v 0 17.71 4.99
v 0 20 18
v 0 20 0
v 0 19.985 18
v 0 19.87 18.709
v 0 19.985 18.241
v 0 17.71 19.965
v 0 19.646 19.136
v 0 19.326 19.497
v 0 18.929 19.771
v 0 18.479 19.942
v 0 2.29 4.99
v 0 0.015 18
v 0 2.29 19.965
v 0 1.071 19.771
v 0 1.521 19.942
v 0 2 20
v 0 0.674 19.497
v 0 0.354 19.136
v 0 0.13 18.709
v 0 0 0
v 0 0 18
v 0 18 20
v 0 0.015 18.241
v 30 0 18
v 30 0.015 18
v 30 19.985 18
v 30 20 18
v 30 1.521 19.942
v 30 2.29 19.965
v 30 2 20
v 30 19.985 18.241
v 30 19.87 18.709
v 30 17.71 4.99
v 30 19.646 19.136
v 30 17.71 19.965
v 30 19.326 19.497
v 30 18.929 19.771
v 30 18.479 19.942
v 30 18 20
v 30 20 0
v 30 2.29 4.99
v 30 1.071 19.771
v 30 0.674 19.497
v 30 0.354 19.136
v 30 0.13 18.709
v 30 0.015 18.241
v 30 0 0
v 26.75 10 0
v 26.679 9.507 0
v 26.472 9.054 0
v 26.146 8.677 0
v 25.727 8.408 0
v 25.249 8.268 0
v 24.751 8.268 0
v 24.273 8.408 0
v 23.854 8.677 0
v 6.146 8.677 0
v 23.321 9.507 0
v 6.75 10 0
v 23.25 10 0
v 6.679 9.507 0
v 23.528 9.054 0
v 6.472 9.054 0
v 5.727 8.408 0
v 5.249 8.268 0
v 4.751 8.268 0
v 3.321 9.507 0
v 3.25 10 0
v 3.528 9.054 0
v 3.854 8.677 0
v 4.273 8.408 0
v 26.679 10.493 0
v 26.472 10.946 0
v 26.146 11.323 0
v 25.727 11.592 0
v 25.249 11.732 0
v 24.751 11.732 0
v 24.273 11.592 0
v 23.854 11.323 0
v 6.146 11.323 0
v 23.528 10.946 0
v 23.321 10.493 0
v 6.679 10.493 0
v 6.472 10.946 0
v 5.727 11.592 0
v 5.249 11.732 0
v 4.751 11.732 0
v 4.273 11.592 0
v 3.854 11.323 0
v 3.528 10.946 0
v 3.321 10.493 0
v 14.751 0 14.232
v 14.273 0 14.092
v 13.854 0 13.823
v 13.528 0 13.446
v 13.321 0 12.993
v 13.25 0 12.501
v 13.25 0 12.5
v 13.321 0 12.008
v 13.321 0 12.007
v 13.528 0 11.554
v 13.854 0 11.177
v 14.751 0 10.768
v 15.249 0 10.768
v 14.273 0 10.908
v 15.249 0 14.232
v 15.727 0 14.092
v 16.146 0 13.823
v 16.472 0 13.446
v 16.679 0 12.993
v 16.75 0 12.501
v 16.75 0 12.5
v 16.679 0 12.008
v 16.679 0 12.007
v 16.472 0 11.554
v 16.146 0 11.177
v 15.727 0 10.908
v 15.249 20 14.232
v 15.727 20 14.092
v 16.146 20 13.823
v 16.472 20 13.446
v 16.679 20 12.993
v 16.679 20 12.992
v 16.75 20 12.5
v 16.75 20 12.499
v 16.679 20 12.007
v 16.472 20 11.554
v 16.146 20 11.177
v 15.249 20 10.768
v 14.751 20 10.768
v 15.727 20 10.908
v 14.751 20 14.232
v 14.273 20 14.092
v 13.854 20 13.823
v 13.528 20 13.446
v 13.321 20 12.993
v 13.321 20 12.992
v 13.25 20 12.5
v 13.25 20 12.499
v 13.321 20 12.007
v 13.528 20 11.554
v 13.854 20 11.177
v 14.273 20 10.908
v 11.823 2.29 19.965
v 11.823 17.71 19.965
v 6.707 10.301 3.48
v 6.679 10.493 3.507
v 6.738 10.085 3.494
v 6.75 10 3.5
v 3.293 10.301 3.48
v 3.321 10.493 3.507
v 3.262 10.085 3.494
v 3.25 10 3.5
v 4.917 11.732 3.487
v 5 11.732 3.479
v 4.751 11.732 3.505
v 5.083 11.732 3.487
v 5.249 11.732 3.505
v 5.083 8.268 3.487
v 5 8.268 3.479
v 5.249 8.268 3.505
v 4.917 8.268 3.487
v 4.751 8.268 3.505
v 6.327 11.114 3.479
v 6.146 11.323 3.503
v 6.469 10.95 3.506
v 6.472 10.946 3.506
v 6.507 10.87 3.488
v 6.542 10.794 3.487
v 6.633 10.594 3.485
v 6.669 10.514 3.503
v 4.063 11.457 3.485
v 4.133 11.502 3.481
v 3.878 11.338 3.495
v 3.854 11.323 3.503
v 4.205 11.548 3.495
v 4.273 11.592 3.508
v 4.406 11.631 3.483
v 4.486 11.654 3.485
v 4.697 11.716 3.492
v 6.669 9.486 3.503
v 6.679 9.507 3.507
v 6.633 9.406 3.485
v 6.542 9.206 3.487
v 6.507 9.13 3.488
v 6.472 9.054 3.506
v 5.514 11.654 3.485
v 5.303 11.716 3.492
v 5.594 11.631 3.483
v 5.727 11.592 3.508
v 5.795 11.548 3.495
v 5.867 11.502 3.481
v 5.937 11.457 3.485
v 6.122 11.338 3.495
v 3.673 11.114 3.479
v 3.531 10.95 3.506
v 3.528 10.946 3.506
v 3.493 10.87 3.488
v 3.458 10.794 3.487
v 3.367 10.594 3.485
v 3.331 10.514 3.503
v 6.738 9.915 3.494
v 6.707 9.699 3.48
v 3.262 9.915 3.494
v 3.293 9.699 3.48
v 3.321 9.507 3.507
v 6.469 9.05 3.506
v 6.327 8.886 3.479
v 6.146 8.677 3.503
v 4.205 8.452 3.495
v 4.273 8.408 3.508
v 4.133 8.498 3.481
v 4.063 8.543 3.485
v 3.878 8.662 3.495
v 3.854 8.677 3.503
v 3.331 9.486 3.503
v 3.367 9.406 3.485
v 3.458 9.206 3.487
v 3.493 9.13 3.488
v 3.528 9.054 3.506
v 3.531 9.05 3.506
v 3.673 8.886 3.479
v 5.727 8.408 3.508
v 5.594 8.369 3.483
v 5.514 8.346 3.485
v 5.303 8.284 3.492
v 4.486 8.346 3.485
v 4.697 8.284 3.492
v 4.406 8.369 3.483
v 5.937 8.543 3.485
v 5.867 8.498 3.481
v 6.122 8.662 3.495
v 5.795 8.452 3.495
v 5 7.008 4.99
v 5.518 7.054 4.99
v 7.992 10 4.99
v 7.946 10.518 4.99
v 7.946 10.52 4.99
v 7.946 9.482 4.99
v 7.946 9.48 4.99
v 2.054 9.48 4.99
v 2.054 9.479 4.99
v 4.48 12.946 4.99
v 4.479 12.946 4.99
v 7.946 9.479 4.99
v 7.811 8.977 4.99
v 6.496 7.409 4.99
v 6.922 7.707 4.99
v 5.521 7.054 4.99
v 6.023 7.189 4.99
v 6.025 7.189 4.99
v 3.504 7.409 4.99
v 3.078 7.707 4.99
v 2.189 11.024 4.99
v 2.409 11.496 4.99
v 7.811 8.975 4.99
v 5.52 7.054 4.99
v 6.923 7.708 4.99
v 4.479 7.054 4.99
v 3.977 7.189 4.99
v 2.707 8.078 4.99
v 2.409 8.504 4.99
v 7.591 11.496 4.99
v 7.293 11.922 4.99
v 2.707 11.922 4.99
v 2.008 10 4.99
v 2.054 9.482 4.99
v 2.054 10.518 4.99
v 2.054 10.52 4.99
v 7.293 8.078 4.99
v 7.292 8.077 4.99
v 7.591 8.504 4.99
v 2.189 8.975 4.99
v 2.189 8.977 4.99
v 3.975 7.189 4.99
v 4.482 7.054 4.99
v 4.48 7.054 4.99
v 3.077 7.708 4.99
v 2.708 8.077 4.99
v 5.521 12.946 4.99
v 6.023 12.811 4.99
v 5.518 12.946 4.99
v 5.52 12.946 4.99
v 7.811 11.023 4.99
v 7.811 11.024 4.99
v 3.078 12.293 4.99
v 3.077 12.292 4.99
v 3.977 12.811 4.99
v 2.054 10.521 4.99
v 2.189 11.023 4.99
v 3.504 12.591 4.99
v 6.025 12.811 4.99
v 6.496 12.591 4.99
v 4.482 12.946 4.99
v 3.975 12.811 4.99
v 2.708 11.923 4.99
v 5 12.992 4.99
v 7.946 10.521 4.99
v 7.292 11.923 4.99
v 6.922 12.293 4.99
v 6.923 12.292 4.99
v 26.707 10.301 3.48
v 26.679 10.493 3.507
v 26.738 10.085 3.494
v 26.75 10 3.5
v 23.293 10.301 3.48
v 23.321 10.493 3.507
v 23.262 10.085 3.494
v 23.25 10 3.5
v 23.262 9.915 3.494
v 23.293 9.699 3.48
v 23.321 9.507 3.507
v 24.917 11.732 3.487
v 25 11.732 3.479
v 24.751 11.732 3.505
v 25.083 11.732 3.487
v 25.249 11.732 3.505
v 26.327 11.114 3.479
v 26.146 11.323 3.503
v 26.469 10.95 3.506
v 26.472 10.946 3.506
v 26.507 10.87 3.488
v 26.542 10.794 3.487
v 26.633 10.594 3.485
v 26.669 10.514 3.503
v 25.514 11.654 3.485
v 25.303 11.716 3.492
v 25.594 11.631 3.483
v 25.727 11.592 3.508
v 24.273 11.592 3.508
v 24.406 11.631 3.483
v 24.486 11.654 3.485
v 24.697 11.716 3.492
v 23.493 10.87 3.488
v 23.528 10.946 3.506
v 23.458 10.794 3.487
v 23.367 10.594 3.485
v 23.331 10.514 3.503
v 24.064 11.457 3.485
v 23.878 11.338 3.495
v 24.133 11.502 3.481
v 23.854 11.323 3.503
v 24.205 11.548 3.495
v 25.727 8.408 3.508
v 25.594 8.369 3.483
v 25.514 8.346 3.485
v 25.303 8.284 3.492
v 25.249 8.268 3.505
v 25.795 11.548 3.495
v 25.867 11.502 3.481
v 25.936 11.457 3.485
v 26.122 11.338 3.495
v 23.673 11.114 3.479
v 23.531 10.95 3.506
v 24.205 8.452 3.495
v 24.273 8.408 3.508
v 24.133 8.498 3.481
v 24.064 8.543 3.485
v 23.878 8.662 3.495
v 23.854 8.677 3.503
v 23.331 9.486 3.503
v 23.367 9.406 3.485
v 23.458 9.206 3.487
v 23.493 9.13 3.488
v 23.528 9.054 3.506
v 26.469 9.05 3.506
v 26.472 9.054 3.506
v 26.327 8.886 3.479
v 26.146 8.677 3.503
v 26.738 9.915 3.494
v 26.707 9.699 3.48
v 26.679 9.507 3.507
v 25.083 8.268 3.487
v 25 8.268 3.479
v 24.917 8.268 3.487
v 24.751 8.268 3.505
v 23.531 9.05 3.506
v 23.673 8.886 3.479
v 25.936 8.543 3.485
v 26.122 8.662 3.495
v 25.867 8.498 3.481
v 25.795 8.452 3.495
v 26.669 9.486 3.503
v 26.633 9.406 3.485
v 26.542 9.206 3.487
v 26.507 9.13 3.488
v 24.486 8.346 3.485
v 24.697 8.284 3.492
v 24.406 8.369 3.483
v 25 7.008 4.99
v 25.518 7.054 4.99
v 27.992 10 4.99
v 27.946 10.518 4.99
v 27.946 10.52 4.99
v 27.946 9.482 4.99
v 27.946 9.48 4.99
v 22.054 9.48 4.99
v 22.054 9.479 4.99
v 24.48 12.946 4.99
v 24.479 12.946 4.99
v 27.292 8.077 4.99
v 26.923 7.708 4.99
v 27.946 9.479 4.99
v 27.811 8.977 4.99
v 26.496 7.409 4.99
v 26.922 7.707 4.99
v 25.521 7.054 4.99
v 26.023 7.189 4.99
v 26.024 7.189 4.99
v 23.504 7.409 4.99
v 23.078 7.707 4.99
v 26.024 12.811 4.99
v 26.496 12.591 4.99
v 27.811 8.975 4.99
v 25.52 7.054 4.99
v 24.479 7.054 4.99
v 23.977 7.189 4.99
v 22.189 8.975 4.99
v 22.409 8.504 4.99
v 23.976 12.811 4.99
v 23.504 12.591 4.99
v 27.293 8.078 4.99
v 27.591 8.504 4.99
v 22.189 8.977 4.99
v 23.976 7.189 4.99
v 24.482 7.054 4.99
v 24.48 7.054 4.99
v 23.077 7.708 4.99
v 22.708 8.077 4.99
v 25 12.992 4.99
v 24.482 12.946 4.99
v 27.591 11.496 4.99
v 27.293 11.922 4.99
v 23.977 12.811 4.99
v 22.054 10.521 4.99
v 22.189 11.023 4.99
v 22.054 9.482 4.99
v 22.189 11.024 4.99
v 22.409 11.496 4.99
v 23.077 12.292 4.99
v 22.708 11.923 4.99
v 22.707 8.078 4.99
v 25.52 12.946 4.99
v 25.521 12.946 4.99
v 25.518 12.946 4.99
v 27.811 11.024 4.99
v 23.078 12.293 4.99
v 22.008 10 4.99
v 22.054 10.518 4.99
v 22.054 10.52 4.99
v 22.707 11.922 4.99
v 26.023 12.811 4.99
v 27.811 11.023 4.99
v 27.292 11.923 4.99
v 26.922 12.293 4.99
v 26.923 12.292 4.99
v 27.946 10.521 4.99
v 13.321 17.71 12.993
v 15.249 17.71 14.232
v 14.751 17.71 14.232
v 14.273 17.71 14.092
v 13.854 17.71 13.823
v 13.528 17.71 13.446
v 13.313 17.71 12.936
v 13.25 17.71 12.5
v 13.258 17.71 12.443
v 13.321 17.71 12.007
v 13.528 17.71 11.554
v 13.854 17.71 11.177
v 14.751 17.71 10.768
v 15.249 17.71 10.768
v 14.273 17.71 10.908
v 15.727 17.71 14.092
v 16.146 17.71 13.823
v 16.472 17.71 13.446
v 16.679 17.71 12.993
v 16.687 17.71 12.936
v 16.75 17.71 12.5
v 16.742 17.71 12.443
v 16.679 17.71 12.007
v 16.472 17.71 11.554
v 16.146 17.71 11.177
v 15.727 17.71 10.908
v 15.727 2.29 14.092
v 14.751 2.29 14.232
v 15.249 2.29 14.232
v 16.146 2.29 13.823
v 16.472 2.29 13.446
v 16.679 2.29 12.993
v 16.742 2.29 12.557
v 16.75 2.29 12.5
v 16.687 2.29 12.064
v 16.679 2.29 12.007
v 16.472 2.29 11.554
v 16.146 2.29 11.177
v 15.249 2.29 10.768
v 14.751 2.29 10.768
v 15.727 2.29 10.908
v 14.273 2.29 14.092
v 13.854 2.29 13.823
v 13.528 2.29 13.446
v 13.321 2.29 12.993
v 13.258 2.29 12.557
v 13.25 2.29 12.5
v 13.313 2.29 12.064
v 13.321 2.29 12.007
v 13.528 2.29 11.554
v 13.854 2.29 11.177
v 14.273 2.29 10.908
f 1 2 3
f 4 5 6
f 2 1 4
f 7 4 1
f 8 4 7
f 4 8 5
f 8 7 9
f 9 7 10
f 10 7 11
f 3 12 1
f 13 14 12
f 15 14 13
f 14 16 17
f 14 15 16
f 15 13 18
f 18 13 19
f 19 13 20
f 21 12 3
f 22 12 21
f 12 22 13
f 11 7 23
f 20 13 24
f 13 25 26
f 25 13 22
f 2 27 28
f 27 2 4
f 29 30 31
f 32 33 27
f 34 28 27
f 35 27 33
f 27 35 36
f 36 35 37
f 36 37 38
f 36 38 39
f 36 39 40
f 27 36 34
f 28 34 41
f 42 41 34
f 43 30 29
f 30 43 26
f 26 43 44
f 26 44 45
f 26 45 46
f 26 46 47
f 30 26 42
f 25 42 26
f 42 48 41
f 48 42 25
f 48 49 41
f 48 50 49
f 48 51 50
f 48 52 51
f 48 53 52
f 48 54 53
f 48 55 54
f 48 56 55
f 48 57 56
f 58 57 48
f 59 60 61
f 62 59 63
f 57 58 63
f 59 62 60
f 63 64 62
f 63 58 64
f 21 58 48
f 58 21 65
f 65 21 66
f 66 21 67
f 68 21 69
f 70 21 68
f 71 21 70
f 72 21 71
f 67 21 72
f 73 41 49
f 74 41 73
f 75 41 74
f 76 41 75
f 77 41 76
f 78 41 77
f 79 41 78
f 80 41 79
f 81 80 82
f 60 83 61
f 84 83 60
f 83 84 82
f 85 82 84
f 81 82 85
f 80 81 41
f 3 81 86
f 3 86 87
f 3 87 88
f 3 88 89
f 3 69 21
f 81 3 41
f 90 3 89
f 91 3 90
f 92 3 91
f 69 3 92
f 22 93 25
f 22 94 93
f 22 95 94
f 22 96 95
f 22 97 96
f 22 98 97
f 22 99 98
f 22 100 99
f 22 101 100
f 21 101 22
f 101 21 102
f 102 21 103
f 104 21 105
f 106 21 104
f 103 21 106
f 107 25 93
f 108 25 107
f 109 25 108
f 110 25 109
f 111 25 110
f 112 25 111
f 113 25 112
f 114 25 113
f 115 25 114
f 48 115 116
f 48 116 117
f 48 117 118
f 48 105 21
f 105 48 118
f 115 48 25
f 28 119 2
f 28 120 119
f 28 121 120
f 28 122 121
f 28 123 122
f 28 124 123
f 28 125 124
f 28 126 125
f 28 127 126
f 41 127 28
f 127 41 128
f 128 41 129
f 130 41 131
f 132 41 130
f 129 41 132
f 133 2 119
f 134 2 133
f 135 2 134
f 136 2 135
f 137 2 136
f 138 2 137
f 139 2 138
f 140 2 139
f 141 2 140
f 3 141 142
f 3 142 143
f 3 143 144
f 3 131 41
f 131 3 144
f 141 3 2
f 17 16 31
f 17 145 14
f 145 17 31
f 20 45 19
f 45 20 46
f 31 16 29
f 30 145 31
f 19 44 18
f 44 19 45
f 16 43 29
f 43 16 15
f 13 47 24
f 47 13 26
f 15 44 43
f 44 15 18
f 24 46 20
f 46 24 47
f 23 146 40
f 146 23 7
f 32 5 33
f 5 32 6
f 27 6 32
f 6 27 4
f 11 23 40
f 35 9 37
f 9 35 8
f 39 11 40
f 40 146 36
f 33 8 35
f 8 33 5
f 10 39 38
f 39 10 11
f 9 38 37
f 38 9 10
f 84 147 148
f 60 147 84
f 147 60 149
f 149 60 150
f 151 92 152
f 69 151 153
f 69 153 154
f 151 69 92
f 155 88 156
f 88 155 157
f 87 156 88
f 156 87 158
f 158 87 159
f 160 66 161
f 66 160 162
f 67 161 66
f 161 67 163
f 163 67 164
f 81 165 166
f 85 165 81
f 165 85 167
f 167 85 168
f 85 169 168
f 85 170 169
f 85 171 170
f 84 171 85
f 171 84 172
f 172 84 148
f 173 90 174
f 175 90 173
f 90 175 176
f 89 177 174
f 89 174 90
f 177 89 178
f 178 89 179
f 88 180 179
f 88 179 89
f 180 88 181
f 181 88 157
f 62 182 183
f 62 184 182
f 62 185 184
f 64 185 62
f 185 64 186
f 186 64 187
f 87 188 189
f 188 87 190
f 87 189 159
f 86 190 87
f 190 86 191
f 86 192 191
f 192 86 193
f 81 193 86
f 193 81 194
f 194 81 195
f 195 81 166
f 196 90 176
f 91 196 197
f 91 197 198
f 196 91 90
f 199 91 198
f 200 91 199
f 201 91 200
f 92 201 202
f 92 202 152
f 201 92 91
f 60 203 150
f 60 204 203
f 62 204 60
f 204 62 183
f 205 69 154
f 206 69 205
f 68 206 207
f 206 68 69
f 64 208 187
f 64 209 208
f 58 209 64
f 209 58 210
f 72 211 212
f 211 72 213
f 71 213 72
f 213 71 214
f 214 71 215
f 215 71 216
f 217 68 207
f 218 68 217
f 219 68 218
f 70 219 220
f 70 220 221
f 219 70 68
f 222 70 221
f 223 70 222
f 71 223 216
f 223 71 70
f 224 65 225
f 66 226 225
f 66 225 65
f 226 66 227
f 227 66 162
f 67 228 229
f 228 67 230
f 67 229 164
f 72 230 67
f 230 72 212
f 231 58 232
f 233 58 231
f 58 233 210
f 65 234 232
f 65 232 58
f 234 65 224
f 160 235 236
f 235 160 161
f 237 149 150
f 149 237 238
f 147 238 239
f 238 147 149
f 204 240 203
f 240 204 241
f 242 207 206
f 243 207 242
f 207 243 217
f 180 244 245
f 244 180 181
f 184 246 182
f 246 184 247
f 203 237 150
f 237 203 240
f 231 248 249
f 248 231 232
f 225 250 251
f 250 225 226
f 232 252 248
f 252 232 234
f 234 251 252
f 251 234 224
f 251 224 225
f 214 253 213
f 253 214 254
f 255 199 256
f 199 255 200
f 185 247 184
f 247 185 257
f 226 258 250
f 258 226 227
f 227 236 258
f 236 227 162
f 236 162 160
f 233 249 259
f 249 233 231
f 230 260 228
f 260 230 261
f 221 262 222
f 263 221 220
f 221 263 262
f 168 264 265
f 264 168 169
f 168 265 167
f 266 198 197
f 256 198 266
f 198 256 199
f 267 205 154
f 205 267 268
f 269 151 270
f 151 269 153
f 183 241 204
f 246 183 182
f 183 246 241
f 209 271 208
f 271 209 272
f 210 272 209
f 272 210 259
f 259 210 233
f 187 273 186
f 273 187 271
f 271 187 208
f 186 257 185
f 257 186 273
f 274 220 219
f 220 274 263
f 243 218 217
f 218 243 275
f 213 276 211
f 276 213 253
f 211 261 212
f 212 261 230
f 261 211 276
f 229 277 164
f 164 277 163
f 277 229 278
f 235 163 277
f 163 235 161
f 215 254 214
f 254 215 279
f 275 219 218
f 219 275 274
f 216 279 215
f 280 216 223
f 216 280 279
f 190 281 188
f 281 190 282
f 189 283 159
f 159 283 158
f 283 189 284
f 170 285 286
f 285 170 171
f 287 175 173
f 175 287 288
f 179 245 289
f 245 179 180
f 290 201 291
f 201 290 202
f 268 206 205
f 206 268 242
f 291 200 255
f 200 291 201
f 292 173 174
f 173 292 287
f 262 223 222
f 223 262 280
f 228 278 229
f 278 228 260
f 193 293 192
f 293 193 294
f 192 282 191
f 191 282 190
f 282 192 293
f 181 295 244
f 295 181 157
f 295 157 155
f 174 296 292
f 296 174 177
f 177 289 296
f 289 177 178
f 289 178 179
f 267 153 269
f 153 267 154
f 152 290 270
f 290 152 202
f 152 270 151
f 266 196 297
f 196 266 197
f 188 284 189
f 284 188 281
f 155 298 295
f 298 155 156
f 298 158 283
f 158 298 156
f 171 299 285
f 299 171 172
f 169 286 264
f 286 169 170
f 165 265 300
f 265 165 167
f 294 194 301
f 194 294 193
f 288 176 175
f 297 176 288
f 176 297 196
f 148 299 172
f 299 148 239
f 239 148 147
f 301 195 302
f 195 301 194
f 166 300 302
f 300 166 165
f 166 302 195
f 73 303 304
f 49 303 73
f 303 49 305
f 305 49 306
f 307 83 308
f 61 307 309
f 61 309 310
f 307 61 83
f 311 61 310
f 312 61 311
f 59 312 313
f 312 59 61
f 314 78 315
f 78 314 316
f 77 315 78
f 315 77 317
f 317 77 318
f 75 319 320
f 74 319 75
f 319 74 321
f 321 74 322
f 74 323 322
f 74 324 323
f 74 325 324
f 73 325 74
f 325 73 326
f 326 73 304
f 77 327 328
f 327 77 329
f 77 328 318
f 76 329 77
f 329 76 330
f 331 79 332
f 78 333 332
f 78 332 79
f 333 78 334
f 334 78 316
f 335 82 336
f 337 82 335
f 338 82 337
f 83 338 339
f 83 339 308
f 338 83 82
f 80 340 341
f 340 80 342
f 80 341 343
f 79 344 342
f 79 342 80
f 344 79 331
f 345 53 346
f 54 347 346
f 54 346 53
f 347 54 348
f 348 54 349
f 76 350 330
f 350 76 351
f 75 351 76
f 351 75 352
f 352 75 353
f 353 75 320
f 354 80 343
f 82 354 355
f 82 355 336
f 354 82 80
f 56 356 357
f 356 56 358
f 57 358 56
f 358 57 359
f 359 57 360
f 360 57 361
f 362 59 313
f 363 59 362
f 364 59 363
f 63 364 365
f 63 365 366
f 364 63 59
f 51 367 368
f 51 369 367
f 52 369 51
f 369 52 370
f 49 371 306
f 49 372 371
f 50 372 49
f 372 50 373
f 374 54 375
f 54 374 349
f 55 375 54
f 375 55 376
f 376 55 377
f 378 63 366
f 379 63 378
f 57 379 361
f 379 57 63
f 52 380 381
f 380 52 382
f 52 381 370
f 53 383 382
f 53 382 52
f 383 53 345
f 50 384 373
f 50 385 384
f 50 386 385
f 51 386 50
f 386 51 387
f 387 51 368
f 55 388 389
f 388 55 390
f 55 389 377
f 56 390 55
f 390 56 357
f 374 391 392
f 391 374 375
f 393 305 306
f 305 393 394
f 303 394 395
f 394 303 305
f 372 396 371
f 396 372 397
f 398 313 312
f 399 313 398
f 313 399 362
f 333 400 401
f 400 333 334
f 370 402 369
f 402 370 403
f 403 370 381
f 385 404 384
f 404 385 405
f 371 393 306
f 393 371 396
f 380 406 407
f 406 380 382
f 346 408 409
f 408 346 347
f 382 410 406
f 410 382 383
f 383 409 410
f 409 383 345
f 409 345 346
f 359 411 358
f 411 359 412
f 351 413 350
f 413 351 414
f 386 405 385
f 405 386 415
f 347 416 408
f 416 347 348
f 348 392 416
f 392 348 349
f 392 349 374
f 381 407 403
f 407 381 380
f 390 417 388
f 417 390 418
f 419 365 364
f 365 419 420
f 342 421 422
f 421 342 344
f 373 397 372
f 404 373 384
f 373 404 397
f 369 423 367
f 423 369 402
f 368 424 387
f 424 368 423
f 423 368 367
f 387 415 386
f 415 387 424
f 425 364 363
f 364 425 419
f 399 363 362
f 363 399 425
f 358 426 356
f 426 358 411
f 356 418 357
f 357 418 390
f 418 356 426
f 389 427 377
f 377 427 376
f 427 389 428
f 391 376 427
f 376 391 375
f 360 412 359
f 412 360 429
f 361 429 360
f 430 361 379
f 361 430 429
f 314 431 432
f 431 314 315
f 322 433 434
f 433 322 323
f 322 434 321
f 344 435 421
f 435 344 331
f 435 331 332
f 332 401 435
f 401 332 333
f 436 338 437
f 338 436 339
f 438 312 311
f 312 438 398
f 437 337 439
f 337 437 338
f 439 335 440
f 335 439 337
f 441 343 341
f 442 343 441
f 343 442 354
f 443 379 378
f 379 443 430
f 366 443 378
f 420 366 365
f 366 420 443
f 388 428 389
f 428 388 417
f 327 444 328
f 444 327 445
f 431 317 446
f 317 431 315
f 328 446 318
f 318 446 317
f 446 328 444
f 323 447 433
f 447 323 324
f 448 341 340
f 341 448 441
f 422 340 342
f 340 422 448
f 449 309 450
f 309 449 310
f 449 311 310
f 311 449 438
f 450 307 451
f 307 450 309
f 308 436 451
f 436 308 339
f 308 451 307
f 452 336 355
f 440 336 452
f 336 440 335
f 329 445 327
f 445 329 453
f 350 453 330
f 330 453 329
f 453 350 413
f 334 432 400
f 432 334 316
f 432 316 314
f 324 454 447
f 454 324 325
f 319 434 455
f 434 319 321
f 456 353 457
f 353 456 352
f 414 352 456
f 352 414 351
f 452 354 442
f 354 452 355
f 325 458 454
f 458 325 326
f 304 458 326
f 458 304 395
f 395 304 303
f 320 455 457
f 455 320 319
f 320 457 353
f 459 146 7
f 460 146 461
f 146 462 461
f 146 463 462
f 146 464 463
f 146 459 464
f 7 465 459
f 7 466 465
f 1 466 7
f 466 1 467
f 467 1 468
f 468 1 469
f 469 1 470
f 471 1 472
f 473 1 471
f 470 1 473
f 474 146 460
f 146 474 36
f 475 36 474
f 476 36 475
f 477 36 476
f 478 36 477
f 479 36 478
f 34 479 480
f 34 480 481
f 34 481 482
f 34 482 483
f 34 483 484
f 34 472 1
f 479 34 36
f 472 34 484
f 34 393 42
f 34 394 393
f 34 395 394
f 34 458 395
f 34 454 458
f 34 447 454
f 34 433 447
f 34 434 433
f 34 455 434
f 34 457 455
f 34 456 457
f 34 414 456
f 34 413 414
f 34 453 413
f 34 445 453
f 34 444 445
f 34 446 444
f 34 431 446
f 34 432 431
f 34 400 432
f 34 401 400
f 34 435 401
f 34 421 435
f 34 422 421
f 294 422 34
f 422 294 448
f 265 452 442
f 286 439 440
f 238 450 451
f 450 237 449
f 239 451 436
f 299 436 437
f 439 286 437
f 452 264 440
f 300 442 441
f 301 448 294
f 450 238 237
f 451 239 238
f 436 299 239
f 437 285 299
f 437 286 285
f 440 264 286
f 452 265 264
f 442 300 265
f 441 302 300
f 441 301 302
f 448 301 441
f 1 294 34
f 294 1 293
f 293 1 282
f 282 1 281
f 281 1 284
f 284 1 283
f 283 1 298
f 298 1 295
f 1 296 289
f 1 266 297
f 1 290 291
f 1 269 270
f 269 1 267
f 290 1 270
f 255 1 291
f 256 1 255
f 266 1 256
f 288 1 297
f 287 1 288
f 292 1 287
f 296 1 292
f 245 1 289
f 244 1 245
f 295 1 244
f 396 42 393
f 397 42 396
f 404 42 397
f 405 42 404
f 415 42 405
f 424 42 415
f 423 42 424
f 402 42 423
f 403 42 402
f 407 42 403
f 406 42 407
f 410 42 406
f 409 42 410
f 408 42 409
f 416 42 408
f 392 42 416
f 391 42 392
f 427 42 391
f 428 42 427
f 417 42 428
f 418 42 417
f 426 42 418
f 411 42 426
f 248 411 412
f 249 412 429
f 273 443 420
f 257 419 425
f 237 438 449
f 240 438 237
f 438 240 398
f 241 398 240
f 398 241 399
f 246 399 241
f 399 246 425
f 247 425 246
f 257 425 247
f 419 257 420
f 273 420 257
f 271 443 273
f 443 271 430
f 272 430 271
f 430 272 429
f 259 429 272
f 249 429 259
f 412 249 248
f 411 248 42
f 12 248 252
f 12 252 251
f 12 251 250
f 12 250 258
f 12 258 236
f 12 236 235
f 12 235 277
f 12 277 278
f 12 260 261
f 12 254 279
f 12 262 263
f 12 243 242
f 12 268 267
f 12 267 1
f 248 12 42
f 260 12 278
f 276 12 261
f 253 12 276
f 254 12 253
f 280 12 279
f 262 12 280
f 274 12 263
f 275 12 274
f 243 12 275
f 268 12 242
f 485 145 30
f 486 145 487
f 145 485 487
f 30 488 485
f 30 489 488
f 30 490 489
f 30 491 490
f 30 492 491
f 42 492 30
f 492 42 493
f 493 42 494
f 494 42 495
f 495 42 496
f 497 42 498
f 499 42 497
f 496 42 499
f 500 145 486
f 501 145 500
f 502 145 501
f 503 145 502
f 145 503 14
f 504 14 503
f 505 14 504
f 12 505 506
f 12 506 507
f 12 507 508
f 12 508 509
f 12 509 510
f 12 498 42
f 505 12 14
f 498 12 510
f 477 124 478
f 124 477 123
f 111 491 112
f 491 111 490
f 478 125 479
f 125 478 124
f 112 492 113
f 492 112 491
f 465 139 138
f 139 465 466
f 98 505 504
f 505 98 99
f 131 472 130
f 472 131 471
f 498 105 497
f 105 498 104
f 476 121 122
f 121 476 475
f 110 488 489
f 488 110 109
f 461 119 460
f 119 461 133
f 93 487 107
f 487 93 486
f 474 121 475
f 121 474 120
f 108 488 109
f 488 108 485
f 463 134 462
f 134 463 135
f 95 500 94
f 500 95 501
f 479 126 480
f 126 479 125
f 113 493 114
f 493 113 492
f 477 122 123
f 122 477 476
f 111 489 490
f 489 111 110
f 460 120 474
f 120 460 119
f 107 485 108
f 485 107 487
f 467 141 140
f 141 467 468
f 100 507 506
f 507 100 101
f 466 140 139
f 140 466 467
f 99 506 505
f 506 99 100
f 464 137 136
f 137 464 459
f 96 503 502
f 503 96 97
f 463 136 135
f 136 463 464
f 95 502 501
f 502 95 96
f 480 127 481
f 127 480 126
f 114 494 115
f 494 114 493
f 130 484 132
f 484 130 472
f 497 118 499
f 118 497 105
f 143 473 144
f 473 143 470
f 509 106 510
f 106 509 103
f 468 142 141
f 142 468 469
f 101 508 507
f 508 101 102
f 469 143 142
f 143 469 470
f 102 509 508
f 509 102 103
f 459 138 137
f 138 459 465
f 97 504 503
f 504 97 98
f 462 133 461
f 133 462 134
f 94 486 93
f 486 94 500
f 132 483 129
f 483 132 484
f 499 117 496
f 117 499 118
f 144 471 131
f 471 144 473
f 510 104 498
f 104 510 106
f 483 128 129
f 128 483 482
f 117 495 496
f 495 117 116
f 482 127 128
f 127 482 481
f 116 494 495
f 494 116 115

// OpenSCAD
$fa=10; $fs=0.5;

prof=15.4;

difference(){
	
	union(){
		cube([30, 20, 18]);
		translate([15, 2, 18]) rotate([0,90,0]) cylinder(r=2, h=30, center=true);
		translate([15, 18, 18]) rotate([0,90,0]) cylinder(r=2, h=30, center=true);
	}

	union(){
		translate([15, (20-prof)/2 + prof/2, 5+prof/2]) cube([30+0.02, prof+0.02, prof+0.02], center=true); //	вырез под профиль

		// под крепление к корпусу
		translate([5, 10, 2.5]) { cylinder(r=1.75, h=5.05, center=true); translate([0,0, 2.5-0.9]) cylinder(r1=1.5, r2=3, h=1.8, center=true); }
		translate([25, 10, 2.5]) { cylinder(r=1.75, h=5.05, center=true); translate([0,0, 2.5-0.9]) cylinder(r1=1.5, r2=3, h=1.8, center=true); }

		// под крепление к профилю
		translate([15, 10, 12.5]) rotate([90,0,0]) cylinder(r=1.75, h=20.05, center=true);
	
	}

}
